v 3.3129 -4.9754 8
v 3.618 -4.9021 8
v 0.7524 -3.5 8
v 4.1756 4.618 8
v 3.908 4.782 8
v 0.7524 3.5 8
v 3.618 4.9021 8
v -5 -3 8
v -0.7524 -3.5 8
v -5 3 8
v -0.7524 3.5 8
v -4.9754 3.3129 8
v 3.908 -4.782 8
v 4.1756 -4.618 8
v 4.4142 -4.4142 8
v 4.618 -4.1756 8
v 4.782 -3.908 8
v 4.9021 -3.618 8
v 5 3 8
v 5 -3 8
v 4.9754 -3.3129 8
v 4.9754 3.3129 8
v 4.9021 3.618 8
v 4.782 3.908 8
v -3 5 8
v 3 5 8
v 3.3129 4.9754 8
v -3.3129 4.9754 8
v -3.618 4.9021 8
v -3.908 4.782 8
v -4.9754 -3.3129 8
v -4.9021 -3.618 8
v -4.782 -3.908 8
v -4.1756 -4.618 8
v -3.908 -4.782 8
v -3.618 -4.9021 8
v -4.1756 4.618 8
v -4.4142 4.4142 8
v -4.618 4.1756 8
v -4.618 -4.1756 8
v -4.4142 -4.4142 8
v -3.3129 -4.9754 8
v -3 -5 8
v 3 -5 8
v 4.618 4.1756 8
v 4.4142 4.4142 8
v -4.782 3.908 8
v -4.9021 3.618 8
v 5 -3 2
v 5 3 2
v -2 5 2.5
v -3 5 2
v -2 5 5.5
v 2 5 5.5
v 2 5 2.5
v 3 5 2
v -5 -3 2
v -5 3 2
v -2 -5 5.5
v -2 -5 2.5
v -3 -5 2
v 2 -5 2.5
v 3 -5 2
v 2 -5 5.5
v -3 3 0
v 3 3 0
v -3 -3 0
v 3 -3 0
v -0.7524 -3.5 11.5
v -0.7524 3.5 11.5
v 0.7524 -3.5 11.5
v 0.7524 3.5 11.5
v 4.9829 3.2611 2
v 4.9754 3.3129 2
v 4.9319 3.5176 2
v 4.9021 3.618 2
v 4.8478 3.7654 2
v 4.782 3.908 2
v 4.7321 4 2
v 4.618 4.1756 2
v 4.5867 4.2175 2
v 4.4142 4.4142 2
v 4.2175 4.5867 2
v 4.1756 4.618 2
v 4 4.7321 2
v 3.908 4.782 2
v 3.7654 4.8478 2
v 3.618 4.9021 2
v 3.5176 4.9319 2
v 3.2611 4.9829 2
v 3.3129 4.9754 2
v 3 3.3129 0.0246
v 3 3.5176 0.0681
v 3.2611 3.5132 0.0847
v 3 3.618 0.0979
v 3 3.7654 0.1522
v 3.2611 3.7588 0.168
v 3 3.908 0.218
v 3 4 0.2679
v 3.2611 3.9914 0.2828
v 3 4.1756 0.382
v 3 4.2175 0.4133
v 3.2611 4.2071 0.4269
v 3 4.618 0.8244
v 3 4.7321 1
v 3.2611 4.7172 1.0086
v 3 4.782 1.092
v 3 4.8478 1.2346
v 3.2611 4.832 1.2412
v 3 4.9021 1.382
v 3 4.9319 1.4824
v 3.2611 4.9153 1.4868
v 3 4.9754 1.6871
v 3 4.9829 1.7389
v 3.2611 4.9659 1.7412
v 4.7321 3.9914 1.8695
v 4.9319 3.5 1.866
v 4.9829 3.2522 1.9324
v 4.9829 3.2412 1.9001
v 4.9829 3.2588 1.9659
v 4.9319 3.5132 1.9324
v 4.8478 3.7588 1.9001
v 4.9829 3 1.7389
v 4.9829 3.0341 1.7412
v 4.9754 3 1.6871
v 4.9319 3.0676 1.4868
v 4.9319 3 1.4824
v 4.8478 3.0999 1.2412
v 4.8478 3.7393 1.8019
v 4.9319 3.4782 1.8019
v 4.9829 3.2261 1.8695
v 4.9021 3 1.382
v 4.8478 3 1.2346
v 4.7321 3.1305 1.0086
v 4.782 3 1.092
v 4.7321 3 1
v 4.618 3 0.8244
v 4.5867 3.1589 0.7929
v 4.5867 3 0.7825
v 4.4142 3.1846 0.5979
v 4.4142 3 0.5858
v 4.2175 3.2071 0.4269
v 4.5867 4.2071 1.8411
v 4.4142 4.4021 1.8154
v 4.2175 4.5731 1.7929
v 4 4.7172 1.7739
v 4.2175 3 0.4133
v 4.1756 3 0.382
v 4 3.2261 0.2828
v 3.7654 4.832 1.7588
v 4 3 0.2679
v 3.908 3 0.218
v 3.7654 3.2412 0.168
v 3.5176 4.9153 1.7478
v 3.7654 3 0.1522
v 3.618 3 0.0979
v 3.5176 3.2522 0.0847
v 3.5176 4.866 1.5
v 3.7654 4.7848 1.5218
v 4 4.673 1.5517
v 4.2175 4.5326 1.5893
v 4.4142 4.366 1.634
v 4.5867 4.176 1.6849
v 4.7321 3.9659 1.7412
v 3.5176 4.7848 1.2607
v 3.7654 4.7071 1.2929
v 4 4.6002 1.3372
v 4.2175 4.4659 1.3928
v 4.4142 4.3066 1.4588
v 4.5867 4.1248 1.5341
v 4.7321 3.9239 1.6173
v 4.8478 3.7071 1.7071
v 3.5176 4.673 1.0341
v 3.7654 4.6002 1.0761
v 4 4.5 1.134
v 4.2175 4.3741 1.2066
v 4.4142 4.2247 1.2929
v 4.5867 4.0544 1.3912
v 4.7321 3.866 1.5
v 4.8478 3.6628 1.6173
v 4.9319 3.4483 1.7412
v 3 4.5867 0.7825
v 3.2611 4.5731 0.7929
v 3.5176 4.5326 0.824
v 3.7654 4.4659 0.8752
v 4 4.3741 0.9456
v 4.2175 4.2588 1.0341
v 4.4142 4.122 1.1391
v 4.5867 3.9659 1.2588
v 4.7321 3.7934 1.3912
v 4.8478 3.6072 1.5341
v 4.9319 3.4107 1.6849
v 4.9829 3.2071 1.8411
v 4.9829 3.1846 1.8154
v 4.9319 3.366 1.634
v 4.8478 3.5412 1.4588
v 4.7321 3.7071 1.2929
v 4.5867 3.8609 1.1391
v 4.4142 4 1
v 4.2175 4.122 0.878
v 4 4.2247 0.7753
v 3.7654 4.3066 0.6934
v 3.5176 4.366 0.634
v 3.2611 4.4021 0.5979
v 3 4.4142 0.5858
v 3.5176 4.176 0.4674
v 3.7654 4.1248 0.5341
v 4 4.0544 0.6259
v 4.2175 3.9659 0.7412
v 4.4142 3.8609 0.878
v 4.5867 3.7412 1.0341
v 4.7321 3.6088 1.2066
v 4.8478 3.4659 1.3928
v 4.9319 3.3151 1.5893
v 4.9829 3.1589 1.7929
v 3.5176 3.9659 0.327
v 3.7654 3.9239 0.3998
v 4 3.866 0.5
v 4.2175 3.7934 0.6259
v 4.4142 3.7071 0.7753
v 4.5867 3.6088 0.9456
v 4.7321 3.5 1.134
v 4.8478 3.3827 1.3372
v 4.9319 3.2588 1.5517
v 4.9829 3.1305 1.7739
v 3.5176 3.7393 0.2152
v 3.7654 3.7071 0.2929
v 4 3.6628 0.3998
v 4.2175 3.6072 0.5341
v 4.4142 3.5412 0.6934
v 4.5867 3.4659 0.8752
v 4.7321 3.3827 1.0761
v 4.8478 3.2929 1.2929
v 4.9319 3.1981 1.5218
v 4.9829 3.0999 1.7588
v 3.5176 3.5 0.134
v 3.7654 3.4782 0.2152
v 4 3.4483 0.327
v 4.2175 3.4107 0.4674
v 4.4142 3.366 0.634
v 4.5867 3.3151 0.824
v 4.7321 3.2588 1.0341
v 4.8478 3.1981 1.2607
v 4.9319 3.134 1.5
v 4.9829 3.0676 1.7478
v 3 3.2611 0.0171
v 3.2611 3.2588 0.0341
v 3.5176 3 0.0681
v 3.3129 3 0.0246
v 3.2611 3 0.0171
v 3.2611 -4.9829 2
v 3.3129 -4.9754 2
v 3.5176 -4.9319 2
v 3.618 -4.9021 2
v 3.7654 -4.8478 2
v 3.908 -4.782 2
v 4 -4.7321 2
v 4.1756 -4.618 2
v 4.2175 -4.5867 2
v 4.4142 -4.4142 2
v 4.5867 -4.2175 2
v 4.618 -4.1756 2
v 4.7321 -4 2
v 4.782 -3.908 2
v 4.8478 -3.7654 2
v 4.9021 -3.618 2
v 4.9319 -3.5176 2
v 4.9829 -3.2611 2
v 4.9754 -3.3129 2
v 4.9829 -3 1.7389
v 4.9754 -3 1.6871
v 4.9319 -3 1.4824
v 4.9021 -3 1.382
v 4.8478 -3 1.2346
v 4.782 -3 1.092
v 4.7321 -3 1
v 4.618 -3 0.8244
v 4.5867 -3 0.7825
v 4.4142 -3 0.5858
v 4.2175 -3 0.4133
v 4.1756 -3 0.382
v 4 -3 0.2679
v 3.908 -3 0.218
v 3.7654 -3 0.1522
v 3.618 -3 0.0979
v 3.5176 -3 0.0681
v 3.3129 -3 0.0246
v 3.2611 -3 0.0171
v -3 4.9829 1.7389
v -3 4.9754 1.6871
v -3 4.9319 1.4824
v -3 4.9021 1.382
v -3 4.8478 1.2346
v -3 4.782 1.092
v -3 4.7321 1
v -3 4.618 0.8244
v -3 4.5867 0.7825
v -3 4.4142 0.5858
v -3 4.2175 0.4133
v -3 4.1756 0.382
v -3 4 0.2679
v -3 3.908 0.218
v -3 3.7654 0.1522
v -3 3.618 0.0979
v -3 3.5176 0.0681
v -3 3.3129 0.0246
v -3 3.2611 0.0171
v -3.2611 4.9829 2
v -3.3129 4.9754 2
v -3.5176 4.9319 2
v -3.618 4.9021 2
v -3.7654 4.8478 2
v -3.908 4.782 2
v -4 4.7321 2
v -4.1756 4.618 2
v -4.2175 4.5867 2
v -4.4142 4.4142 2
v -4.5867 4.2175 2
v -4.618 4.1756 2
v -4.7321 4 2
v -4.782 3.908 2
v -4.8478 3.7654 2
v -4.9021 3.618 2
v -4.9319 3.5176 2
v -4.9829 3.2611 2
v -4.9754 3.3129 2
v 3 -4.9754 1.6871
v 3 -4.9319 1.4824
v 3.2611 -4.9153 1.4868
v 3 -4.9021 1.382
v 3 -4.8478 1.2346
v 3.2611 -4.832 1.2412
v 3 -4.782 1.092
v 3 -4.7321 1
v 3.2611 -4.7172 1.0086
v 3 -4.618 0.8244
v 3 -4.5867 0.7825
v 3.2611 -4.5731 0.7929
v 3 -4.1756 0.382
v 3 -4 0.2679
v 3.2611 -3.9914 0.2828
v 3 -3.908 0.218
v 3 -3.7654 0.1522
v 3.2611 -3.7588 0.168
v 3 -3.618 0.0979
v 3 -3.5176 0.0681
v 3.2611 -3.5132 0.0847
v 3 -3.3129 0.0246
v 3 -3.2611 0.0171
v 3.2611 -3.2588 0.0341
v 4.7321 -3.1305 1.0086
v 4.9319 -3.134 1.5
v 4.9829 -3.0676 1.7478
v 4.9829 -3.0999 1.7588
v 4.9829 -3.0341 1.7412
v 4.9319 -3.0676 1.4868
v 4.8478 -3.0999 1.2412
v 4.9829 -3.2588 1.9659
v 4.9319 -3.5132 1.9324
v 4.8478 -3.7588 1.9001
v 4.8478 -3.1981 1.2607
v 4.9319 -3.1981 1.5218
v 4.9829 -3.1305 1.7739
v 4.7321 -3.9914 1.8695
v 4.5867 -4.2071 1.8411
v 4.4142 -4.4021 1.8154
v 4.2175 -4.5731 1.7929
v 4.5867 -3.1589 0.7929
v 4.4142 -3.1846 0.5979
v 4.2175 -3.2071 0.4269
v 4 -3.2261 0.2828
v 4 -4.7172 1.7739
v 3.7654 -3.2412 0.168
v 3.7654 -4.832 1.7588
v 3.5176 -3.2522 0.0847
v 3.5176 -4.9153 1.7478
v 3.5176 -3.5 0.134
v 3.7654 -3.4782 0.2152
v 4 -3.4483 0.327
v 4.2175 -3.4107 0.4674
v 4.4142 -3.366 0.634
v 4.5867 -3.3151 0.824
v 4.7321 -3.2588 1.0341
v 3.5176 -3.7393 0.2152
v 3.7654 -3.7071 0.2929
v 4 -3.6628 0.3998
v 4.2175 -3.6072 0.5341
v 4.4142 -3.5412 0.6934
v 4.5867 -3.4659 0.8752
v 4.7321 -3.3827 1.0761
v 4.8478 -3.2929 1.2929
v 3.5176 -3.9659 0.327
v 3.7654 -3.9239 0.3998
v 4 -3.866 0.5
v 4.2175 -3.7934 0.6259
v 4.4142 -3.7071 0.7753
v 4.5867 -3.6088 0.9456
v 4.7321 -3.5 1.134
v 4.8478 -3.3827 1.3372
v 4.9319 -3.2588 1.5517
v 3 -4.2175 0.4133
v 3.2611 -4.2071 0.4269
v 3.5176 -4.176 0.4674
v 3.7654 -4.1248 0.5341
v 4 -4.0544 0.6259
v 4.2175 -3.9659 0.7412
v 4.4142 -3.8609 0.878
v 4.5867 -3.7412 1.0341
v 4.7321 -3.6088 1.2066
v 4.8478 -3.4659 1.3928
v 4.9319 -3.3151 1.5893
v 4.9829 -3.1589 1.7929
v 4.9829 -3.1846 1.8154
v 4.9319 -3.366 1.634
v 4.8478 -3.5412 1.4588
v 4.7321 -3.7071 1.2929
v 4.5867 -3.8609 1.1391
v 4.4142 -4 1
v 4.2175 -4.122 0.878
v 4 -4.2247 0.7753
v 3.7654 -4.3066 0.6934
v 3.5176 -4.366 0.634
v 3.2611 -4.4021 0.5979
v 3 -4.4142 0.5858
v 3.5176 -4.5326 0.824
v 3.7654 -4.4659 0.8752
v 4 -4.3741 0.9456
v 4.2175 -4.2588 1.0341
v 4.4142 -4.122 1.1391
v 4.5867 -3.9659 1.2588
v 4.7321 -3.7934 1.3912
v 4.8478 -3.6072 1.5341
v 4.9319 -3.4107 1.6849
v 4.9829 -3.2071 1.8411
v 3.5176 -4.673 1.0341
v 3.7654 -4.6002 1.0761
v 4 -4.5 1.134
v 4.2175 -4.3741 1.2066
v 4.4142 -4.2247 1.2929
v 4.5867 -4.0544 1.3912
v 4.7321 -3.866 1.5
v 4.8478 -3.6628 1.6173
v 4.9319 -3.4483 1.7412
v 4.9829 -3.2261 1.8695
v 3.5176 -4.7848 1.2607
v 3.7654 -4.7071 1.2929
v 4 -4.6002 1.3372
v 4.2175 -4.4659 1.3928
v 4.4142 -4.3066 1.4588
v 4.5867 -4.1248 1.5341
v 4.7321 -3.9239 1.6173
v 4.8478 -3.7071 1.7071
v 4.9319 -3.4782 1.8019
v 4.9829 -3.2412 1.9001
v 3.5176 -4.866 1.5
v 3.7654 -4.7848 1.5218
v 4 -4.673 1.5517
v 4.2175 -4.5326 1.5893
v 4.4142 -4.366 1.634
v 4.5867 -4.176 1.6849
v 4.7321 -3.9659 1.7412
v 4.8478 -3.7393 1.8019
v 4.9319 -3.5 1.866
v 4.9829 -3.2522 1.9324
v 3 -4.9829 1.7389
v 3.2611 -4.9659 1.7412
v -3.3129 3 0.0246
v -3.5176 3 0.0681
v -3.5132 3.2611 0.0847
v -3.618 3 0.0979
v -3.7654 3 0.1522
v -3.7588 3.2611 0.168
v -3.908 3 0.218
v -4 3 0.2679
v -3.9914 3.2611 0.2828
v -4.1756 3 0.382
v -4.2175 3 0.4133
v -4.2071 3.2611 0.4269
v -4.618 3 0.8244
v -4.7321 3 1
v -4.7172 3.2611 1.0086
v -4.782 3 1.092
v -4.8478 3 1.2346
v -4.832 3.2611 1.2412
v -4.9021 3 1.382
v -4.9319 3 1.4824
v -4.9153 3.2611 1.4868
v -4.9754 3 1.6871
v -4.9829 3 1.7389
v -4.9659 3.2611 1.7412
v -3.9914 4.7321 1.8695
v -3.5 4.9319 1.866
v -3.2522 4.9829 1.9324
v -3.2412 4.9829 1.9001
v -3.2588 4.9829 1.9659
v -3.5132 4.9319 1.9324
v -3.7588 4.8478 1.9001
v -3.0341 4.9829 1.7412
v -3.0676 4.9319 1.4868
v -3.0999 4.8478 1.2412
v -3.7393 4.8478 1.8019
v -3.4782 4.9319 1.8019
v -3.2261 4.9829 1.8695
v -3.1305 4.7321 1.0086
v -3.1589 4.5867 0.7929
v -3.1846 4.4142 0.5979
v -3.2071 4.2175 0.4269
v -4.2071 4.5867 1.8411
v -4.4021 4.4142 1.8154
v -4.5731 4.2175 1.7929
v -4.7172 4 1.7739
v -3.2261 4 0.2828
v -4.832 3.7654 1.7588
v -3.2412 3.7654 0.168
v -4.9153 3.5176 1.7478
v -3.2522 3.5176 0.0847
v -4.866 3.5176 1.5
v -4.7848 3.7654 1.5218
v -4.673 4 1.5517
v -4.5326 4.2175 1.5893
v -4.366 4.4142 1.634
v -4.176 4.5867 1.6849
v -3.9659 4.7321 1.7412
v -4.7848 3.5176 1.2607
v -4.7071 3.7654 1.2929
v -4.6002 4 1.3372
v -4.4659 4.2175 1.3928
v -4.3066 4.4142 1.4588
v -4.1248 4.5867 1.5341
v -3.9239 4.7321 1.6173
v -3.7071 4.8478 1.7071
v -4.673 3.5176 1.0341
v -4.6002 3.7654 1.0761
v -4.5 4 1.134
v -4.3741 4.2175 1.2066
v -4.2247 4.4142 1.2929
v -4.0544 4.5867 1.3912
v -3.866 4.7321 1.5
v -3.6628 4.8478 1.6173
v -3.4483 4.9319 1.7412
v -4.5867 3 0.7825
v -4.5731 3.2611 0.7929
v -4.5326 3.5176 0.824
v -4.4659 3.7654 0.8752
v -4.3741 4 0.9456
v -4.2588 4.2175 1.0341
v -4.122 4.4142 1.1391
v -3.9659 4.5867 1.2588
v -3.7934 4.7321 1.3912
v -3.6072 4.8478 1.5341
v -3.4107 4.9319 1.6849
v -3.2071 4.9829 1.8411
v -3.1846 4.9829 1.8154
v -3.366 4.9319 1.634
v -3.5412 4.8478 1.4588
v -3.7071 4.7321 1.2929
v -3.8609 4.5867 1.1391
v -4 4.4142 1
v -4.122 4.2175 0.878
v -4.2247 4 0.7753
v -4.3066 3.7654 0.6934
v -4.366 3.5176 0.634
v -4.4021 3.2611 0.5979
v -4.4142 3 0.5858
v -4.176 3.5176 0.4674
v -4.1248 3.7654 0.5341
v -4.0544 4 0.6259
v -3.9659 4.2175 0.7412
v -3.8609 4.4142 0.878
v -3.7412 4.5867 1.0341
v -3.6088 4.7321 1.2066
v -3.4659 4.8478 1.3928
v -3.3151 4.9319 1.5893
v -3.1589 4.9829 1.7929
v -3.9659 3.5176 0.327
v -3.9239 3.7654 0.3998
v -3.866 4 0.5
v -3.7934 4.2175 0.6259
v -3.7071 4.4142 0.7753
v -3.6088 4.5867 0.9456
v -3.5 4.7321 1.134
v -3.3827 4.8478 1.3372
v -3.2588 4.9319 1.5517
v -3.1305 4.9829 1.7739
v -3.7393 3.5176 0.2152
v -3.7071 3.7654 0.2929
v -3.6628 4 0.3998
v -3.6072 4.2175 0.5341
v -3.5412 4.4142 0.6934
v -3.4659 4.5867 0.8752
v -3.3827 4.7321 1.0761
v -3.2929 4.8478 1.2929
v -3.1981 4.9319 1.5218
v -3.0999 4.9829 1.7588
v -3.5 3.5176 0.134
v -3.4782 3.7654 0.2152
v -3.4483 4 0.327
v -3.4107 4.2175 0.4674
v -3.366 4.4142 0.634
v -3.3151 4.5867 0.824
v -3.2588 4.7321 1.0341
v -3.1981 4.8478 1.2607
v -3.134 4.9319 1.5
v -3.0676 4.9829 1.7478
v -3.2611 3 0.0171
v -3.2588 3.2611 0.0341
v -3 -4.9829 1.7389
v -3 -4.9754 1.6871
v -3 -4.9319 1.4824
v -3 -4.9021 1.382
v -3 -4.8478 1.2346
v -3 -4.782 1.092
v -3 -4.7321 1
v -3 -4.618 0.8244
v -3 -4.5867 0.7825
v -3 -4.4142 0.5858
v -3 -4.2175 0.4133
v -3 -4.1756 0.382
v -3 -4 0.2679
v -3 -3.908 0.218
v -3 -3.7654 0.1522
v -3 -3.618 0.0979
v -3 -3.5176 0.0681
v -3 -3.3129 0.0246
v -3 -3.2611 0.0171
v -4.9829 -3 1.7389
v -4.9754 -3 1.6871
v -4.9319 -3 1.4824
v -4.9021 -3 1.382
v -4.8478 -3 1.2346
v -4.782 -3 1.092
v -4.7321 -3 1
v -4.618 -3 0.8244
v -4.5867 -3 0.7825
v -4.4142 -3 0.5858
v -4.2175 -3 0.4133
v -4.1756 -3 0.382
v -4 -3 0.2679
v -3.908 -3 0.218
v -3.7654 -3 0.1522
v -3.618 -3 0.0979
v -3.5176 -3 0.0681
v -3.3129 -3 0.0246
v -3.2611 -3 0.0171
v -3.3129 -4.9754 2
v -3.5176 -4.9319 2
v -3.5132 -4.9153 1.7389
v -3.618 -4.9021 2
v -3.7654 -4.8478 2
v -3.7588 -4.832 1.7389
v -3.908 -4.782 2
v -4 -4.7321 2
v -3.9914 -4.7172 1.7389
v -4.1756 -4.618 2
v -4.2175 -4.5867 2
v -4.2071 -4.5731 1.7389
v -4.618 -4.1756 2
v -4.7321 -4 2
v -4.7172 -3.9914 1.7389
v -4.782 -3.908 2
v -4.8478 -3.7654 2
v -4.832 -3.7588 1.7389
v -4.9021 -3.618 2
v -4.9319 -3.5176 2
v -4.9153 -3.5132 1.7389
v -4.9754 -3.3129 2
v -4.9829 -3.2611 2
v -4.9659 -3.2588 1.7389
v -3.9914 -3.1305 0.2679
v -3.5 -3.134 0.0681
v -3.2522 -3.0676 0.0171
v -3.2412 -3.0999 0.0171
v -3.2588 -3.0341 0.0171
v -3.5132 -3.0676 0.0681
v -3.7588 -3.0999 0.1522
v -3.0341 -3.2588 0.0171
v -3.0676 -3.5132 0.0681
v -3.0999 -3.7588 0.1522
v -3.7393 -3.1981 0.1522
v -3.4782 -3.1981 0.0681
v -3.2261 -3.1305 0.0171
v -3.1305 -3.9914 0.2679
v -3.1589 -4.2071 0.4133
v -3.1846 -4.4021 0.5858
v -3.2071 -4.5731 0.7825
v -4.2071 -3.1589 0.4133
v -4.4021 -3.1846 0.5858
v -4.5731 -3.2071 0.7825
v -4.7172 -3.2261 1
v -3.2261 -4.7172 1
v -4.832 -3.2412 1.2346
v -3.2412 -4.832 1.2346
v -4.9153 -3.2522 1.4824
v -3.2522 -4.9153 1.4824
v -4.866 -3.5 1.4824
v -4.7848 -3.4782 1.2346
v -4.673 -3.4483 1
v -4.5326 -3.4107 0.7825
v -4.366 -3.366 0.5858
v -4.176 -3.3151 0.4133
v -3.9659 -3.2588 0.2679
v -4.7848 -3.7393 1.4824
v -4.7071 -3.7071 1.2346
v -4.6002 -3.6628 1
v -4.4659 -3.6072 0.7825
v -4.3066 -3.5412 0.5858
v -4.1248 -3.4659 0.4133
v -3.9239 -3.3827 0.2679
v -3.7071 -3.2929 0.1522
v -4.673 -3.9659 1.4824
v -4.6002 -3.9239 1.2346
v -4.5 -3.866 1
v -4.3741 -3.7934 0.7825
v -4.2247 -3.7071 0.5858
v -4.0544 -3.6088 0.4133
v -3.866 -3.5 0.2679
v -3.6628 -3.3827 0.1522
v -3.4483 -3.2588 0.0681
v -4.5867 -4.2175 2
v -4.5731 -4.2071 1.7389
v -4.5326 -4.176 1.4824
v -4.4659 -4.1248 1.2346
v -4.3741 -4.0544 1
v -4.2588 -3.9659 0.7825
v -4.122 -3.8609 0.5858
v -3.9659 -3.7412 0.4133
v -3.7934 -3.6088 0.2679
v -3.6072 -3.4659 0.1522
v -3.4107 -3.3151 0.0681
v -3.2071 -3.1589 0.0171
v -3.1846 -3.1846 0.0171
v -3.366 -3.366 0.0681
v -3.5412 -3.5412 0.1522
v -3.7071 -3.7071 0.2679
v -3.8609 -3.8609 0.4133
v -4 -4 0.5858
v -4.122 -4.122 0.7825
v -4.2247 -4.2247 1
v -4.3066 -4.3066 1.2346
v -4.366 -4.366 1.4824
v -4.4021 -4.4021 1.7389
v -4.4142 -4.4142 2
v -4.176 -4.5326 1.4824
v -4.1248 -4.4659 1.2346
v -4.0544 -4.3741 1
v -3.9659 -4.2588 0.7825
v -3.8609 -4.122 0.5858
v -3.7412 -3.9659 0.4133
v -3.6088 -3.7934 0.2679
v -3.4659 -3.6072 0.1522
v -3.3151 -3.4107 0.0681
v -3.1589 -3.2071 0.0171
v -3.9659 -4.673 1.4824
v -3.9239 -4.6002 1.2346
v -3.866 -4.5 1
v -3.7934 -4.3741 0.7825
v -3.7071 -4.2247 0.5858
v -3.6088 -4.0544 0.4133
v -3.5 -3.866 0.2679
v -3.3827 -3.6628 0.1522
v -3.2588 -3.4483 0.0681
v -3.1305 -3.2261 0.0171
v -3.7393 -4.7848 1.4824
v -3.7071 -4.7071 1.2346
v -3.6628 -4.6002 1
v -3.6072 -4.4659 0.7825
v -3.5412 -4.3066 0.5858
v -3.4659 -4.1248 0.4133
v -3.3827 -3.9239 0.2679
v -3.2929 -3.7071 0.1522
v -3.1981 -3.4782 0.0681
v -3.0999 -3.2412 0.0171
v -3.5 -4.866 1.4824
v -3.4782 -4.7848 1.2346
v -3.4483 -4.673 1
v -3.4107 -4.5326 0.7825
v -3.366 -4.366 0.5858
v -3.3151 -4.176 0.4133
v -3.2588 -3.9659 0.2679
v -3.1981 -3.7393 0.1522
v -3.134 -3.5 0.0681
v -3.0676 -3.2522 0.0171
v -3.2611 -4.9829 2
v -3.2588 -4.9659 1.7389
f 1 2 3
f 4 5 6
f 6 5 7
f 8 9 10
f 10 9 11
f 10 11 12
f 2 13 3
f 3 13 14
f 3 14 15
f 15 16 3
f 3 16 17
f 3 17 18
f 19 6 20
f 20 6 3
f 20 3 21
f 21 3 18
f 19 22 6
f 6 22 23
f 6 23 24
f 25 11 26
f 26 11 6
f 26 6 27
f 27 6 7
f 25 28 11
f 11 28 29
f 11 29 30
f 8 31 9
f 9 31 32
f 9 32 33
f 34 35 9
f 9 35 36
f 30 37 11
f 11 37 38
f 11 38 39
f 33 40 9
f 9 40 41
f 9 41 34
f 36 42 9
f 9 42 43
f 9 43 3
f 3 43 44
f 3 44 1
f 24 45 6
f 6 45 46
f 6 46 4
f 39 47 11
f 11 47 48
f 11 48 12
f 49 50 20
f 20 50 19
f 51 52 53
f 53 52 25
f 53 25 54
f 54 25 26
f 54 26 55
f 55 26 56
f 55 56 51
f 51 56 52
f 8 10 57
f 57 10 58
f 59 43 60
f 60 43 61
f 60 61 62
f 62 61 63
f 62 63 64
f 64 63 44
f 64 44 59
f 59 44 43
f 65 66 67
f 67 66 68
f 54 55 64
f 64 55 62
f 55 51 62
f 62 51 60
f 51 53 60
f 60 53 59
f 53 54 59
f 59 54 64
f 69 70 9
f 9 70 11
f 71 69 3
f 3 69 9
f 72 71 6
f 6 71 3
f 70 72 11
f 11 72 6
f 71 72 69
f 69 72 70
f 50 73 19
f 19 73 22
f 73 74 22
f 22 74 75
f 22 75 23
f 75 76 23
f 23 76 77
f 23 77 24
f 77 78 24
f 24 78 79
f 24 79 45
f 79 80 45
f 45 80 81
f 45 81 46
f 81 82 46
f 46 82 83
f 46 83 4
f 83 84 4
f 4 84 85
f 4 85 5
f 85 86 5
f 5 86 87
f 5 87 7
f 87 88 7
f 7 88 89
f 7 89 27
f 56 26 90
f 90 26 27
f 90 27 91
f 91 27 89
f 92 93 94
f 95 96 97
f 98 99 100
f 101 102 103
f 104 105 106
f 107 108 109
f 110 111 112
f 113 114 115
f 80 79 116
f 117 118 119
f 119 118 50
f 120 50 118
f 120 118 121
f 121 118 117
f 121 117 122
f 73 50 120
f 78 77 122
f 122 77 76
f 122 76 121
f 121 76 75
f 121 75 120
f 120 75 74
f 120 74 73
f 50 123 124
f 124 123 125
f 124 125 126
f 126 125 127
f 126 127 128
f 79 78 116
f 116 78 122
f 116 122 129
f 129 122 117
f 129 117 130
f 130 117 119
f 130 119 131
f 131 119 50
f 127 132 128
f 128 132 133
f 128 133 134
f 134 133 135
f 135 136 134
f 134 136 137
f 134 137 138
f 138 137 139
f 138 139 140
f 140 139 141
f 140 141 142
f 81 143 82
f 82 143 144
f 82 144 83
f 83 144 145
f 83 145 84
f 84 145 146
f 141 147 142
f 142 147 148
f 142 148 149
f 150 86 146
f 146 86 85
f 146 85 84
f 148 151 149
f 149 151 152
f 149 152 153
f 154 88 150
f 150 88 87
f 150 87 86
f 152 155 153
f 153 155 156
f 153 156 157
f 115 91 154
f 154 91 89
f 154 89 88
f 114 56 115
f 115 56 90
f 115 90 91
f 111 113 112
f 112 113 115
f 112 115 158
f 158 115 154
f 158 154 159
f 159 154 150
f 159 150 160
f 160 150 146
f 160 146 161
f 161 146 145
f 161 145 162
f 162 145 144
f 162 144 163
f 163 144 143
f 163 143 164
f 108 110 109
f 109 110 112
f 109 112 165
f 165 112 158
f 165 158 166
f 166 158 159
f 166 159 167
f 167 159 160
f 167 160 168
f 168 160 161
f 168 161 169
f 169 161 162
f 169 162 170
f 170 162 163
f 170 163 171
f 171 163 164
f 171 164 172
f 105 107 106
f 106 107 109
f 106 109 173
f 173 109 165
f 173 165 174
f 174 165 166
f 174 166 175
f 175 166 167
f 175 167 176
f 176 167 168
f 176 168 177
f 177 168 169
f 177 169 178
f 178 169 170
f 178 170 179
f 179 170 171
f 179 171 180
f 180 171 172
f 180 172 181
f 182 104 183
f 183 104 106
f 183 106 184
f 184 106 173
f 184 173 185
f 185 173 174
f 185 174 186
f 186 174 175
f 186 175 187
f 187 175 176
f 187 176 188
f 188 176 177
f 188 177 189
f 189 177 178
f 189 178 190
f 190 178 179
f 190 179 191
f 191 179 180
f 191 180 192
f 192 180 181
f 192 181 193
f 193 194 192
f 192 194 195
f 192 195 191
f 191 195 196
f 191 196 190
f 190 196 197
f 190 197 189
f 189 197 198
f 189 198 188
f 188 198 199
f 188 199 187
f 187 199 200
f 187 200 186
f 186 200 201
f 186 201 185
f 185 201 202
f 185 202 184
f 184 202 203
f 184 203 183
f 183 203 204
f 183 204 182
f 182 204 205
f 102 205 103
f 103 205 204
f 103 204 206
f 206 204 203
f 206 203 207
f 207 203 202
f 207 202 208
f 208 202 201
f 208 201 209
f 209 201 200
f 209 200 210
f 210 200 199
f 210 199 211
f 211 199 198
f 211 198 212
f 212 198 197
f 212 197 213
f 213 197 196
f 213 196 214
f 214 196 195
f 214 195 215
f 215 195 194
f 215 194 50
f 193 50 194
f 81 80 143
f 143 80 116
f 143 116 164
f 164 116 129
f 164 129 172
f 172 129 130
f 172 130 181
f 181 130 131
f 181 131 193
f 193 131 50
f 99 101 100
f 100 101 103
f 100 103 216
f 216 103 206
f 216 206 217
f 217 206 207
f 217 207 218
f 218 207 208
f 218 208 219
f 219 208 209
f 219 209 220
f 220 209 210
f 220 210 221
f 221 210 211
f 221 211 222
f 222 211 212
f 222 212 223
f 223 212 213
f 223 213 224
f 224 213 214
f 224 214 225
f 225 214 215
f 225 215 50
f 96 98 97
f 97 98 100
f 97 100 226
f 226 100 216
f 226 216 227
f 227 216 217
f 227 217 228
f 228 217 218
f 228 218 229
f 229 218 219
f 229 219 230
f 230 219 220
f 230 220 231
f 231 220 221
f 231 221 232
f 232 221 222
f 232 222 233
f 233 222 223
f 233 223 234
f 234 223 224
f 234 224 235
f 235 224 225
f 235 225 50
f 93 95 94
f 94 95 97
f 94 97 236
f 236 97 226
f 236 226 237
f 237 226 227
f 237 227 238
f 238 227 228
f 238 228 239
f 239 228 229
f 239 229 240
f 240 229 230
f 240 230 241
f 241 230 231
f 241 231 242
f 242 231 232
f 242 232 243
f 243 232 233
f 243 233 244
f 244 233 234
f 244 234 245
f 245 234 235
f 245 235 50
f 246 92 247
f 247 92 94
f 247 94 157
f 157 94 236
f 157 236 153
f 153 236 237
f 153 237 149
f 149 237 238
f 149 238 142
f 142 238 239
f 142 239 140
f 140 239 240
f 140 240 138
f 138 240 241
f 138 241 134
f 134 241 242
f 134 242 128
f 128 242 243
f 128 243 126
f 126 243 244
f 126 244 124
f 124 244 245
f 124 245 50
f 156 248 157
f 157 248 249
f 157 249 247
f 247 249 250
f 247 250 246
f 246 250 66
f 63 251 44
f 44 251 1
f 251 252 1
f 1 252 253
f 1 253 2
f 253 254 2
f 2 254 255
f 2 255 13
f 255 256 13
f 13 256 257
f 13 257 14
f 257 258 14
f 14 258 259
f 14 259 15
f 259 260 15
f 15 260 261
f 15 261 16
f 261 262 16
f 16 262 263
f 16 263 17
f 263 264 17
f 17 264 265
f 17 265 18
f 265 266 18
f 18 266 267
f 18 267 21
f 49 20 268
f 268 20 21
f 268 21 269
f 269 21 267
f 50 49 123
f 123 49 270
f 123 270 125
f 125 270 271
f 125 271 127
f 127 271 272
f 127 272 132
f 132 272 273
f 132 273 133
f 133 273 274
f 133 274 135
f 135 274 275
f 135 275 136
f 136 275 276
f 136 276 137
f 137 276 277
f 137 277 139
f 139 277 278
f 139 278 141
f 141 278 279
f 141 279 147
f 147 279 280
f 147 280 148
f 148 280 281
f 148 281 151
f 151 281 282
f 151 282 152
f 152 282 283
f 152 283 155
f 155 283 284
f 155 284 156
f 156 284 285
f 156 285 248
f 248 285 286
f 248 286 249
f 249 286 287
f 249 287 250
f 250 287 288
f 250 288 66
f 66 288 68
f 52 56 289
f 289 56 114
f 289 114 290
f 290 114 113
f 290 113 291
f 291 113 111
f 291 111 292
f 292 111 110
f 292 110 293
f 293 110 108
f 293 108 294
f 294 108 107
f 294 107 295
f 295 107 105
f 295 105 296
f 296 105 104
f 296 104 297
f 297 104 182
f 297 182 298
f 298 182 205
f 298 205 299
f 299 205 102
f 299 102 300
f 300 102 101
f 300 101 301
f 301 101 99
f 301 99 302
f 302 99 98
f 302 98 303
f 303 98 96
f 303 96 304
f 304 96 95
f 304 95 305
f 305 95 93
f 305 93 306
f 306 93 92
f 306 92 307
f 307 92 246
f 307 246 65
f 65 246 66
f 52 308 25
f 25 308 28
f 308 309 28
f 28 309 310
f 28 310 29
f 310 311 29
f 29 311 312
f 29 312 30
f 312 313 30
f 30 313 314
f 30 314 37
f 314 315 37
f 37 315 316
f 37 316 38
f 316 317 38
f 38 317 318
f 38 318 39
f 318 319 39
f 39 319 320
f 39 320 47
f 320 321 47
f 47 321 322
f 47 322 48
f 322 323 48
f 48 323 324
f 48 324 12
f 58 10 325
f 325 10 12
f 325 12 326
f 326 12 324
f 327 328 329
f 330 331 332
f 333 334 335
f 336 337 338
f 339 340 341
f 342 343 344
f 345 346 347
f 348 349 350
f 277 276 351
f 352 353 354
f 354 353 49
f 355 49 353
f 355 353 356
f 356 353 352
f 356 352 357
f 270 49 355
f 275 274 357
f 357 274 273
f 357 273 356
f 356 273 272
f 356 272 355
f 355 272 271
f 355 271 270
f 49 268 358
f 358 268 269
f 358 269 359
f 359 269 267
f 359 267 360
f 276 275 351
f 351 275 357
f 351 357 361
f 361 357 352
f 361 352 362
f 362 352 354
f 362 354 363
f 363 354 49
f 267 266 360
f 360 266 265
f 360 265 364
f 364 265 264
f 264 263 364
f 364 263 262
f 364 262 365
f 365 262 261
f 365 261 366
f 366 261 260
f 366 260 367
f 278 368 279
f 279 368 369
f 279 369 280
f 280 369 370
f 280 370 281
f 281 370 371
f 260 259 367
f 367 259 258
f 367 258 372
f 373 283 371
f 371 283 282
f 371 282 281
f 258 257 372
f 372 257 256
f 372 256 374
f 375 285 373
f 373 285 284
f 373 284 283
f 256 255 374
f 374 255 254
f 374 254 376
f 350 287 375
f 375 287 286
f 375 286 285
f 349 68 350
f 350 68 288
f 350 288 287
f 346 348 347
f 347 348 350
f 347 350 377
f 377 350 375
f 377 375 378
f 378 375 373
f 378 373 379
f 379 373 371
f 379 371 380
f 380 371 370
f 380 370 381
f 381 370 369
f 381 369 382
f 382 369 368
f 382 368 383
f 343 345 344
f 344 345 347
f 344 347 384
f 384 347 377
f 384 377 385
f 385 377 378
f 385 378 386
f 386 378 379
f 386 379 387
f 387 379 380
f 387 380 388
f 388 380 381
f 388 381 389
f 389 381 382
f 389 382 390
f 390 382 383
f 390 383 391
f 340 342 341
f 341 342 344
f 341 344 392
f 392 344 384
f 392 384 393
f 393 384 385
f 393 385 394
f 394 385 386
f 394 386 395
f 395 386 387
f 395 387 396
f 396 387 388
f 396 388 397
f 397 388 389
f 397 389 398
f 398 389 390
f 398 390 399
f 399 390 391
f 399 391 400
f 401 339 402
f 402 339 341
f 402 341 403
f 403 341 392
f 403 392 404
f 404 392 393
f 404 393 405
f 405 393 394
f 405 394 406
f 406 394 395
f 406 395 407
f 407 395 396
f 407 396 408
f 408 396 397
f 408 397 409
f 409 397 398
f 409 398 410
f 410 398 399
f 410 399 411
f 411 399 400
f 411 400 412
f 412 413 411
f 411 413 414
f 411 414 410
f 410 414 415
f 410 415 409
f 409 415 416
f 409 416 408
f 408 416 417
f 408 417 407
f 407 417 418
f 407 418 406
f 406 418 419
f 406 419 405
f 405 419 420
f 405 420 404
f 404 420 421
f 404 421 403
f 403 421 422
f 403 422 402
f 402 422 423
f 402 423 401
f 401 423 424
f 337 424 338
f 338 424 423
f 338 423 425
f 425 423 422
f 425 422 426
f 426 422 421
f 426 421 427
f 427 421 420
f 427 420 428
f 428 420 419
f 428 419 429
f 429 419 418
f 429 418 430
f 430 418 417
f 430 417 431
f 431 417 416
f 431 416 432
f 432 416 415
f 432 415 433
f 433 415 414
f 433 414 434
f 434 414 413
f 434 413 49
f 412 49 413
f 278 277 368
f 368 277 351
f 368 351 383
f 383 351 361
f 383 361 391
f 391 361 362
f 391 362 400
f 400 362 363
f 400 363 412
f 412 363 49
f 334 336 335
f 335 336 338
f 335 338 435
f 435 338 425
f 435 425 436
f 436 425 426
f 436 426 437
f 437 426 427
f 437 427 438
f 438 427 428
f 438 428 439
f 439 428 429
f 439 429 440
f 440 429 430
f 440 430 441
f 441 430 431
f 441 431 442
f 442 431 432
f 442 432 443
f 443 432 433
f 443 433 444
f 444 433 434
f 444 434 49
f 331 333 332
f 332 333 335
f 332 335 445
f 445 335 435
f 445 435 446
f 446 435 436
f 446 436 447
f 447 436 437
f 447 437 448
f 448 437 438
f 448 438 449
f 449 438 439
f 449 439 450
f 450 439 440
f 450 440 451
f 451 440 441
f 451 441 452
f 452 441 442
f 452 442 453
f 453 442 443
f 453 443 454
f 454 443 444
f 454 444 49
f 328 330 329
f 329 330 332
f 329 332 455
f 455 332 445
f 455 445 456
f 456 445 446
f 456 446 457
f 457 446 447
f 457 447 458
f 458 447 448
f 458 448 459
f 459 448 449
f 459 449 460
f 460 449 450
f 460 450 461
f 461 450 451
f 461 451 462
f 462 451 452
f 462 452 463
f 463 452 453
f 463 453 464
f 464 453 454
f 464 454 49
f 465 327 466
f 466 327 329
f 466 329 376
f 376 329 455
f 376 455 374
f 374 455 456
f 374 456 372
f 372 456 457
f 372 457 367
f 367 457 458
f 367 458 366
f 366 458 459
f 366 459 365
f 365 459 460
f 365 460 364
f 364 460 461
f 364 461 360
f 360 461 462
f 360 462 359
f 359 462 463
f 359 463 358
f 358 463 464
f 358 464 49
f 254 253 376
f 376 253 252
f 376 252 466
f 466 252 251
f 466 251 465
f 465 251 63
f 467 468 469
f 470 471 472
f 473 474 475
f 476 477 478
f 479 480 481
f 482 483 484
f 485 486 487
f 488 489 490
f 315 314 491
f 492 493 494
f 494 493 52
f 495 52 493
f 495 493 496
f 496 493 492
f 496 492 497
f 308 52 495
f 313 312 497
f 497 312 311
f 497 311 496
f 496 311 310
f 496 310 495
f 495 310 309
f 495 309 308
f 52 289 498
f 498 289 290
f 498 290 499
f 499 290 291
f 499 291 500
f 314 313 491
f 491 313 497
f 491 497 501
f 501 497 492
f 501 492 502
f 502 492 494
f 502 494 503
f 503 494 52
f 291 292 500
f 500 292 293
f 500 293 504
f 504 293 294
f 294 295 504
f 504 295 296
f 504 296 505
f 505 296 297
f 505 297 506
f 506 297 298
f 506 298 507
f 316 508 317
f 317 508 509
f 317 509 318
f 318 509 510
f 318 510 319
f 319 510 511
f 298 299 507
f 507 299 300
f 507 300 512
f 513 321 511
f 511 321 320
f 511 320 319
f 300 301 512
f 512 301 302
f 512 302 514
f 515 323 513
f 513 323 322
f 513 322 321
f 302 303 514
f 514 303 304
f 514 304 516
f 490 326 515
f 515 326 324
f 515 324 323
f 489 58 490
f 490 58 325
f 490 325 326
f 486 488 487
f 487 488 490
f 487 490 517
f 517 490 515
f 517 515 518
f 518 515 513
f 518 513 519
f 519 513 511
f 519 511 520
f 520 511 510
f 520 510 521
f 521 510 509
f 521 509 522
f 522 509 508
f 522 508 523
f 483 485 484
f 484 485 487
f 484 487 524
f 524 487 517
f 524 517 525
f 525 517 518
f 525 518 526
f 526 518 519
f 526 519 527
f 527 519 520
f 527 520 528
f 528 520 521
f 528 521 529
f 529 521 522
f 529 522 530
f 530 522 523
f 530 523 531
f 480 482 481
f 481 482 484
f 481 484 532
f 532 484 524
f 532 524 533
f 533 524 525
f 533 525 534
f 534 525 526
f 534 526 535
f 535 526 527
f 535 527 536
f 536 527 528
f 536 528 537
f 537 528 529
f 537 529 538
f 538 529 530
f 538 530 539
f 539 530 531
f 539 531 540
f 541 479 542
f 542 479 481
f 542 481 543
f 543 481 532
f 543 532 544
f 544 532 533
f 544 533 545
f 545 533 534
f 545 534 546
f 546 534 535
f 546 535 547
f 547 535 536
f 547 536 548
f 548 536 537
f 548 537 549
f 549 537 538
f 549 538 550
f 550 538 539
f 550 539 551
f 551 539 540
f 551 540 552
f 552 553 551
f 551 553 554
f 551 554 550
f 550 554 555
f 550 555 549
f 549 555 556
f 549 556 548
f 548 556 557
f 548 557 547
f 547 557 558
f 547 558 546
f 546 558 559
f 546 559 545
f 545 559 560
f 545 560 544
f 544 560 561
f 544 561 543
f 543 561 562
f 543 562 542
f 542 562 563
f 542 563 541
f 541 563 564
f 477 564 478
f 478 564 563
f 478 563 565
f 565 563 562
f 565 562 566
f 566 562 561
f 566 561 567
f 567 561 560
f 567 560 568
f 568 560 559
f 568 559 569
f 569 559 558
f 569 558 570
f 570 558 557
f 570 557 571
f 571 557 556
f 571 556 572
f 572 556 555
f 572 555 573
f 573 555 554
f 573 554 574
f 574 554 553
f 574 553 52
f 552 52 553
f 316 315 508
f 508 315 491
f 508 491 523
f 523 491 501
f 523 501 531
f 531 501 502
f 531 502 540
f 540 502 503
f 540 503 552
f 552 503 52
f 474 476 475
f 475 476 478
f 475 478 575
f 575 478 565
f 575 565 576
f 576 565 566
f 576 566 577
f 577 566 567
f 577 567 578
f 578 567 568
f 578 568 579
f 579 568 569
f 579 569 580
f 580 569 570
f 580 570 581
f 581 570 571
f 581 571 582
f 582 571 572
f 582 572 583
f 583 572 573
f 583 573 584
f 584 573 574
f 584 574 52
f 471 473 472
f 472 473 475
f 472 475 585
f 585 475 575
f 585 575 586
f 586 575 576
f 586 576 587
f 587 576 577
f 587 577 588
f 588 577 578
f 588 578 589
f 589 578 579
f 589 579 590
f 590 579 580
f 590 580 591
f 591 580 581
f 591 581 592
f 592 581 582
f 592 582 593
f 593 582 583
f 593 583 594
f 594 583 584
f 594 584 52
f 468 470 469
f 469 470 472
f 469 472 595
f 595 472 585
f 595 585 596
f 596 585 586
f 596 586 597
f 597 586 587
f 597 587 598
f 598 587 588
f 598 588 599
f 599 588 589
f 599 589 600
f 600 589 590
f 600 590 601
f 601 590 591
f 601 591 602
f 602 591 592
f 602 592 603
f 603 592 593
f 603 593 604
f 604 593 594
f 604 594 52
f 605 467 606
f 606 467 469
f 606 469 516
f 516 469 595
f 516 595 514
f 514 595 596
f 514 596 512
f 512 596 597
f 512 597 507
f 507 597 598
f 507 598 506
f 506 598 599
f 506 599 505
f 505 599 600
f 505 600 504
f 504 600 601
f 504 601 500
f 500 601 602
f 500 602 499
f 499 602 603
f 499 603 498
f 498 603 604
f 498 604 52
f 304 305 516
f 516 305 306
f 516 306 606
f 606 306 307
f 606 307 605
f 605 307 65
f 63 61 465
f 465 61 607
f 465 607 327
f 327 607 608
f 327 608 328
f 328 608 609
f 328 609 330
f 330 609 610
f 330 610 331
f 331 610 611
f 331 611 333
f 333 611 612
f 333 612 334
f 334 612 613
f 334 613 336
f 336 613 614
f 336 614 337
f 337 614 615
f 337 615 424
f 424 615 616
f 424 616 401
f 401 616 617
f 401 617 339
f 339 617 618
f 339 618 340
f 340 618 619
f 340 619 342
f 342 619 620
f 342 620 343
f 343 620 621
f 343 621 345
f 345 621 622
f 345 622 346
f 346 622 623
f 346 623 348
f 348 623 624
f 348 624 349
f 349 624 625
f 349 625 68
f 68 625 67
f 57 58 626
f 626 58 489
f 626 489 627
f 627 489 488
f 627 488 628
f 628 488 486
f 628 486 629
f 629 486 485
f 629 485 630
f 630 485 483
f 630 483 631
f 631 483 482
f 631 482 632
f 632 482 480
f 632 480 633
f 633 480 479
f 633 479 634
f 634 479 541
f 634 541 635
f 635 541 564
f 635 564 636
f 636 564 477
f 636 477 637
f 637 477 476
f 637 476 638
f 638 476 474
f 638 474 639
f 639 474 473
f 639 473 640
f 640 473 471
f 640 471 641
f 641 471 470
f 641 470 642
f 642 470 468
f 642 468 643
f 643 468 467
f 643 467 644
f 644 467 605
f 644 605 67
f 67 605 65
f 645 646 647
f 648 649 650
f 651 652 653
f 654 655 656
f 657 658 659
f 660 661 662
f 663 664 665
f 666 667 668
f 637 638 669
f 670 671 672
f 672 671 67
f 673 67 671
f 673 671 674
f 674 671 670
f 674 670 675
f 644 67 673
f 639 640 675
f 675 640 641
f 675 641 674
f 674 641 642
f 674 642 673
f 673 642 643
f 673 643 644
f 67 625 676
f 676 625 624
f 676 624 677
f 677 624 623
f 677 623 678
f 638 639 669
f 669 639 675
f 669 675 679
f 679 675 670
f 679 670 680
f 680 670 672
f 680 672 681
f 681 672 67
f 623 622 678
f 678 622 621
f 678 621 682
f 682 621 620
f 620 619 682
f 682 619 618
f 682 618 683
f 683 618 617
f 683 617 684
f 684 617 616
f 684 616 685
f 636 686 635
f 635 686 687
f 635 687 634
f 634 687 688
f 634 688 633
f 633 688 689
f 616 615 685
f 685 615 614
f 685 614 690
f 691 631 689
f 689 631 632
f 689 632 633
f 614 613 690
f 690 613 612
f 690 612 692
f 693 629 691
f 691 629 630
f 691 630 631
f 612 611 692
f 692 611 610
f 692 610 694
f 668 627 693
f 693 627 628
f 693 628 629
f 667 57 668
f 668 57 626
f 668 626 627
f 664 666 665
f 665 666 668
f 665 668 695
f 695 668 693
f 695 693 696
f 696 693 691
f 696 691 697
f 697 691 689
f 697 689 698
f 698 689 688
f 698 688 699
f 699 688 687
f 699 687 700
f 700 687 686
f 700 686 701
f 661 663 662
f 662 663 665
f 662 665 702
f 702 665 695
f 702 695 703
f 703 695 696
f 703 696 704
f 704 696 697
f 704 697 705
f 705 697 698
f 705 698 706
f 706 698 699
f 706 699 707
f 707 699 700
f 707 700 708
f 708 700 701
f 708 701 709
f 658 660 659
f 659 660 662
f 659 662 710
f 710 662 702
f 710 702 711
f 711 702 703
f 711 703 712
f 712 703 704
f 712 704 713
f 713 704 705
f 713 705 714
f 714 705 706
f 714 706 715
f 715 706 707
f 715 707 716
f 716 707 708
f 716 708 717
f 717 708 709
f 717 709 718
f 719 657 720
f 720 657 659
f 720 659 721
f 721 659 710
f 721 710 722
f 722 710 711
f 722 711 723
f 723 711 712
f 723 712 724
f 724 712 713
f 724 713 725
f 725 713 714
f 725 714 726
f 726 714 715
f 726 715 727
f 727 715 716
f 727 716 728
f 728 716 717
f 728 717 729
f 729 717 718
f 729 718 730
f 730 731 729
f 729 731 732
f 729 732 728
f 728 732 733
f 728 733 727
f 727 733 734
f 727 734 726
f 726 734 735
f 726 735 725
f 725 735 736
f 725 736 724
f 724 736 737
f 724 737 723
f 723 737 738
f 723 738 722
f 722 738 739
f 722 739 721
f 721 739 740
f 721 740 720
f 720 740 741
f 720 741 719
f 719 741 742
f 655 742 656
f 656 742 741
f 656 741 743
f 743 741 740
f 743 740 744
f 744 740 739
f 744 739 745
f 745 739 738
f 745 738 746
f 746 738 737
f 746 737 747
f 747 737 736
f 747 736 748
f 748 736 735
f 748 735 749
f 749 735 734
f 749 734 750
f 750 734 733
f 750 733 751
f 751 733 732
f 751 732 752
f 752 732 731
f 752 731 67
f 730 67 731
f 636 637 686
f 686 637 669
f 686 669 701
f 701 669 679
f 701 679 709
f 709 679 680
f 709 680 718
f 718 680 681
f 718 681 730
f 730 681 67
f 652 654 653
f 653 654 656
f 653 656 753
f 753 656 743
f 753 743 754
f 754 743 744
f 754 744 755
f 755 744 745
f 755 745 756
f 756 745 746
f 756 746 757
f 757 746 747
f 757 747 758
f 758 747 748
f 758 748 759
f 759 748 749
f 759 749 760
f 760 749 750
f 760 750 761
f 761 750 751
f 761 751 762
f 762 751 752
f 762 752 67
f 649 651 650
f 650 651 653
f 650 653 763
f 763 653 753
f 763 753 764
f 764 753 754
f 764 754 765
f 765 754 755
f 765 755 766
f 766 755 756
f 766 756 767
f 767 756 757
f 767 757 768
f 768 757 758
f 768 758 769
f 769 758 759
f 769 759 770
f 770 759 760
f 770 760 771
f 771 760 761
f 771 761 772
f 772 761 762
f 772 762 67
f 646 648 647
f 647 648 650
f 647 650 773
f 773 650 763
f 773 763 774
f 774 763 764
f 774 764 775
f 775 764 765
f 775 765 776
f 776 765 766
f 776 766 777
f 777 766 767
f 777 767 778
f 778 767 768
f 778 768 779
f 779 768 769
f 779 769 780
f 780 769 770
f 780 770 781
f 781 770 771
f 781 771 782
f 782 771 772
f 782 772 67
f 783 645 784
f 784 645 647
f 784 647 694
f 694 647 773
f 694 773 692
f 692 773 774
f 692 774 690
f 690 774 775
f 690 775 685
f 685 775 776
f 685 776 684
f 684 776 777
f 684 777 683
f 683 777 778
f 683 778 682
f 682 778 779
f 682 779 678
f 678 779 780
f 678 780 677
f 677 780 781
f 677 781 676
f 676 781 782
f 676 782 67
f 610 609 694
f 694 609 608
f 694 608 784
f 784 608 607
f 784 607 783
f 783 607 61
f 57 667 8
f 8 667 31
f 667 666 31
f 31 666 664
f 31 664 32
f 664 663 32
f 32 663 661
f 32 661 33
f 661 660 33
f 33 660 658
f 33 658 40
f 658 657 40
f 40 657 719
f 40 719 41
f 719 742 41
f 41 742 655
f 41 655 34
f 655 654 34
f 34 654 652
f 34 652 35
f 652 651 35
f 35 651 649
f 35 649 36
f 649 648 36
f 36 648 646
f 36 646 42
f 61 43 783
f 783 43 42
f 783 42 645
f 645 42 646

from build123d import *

# Parameters (mm, degrees)
SKETCH1_W           = 10
SKETCH1_H           = 10
BOSS_EXTRUDE1_DEPTH = 8
SKETCH2_W           = 4
SKETCH2_H           = 3
CUT_EXTRUDE1_DEPTH  = 11
SKETCH3_W           = 1.504859188
SKETCH3_H           = 7
BOSS_EXTRUDE2_DEPTH = 3.5
FILLET1_R           = 2


with BuildPart() as part:
    # Sketch1 → Boss-Extrude1 (new body)
    with BuildSketch(Plane.XY):
        Rectangle(SKETCH1_W, SKETCH1_H)
    extrude(amount=BOSS_EXTRUDE1_DEPTH)

    # Sketch2 → Cut-Extrude1 (cut, through all)
    with BuildSketch(Plane.XZ.offset(5)):
        with Locations((0, 4)):
            Rectangle(SKETCH2_W, SKETCH2_H)
    extrude(amount=-CUT_EXTRUDE1_DEPTH, mode=Mode.SUBTRACT)

    # Sketch3 → Boss-Extrude2 (add)
    with BuildSketch(Plane.XY.offset(8)):
        Rectangle(SKETCH3_W, SKETCH3_H)
    extrude(amount=BOSS_EXTRUDE2_DEPTH)

    # Fillet1
    fillet1_edges = [part.edges().sort_by_distance(p)[0] for p in [
        (0, -5, 0),
        (-5, 0, 0),
        (0, 5, 0),
        (5, 0, 0),
        (5, -5, 4),
        (-5, -5, 4),
        (-5, 5, 4),
        (5, 5, 4),
    ]]
    fillet(fillet1_edges, radius=FILLET1_R)


solid = part.part
